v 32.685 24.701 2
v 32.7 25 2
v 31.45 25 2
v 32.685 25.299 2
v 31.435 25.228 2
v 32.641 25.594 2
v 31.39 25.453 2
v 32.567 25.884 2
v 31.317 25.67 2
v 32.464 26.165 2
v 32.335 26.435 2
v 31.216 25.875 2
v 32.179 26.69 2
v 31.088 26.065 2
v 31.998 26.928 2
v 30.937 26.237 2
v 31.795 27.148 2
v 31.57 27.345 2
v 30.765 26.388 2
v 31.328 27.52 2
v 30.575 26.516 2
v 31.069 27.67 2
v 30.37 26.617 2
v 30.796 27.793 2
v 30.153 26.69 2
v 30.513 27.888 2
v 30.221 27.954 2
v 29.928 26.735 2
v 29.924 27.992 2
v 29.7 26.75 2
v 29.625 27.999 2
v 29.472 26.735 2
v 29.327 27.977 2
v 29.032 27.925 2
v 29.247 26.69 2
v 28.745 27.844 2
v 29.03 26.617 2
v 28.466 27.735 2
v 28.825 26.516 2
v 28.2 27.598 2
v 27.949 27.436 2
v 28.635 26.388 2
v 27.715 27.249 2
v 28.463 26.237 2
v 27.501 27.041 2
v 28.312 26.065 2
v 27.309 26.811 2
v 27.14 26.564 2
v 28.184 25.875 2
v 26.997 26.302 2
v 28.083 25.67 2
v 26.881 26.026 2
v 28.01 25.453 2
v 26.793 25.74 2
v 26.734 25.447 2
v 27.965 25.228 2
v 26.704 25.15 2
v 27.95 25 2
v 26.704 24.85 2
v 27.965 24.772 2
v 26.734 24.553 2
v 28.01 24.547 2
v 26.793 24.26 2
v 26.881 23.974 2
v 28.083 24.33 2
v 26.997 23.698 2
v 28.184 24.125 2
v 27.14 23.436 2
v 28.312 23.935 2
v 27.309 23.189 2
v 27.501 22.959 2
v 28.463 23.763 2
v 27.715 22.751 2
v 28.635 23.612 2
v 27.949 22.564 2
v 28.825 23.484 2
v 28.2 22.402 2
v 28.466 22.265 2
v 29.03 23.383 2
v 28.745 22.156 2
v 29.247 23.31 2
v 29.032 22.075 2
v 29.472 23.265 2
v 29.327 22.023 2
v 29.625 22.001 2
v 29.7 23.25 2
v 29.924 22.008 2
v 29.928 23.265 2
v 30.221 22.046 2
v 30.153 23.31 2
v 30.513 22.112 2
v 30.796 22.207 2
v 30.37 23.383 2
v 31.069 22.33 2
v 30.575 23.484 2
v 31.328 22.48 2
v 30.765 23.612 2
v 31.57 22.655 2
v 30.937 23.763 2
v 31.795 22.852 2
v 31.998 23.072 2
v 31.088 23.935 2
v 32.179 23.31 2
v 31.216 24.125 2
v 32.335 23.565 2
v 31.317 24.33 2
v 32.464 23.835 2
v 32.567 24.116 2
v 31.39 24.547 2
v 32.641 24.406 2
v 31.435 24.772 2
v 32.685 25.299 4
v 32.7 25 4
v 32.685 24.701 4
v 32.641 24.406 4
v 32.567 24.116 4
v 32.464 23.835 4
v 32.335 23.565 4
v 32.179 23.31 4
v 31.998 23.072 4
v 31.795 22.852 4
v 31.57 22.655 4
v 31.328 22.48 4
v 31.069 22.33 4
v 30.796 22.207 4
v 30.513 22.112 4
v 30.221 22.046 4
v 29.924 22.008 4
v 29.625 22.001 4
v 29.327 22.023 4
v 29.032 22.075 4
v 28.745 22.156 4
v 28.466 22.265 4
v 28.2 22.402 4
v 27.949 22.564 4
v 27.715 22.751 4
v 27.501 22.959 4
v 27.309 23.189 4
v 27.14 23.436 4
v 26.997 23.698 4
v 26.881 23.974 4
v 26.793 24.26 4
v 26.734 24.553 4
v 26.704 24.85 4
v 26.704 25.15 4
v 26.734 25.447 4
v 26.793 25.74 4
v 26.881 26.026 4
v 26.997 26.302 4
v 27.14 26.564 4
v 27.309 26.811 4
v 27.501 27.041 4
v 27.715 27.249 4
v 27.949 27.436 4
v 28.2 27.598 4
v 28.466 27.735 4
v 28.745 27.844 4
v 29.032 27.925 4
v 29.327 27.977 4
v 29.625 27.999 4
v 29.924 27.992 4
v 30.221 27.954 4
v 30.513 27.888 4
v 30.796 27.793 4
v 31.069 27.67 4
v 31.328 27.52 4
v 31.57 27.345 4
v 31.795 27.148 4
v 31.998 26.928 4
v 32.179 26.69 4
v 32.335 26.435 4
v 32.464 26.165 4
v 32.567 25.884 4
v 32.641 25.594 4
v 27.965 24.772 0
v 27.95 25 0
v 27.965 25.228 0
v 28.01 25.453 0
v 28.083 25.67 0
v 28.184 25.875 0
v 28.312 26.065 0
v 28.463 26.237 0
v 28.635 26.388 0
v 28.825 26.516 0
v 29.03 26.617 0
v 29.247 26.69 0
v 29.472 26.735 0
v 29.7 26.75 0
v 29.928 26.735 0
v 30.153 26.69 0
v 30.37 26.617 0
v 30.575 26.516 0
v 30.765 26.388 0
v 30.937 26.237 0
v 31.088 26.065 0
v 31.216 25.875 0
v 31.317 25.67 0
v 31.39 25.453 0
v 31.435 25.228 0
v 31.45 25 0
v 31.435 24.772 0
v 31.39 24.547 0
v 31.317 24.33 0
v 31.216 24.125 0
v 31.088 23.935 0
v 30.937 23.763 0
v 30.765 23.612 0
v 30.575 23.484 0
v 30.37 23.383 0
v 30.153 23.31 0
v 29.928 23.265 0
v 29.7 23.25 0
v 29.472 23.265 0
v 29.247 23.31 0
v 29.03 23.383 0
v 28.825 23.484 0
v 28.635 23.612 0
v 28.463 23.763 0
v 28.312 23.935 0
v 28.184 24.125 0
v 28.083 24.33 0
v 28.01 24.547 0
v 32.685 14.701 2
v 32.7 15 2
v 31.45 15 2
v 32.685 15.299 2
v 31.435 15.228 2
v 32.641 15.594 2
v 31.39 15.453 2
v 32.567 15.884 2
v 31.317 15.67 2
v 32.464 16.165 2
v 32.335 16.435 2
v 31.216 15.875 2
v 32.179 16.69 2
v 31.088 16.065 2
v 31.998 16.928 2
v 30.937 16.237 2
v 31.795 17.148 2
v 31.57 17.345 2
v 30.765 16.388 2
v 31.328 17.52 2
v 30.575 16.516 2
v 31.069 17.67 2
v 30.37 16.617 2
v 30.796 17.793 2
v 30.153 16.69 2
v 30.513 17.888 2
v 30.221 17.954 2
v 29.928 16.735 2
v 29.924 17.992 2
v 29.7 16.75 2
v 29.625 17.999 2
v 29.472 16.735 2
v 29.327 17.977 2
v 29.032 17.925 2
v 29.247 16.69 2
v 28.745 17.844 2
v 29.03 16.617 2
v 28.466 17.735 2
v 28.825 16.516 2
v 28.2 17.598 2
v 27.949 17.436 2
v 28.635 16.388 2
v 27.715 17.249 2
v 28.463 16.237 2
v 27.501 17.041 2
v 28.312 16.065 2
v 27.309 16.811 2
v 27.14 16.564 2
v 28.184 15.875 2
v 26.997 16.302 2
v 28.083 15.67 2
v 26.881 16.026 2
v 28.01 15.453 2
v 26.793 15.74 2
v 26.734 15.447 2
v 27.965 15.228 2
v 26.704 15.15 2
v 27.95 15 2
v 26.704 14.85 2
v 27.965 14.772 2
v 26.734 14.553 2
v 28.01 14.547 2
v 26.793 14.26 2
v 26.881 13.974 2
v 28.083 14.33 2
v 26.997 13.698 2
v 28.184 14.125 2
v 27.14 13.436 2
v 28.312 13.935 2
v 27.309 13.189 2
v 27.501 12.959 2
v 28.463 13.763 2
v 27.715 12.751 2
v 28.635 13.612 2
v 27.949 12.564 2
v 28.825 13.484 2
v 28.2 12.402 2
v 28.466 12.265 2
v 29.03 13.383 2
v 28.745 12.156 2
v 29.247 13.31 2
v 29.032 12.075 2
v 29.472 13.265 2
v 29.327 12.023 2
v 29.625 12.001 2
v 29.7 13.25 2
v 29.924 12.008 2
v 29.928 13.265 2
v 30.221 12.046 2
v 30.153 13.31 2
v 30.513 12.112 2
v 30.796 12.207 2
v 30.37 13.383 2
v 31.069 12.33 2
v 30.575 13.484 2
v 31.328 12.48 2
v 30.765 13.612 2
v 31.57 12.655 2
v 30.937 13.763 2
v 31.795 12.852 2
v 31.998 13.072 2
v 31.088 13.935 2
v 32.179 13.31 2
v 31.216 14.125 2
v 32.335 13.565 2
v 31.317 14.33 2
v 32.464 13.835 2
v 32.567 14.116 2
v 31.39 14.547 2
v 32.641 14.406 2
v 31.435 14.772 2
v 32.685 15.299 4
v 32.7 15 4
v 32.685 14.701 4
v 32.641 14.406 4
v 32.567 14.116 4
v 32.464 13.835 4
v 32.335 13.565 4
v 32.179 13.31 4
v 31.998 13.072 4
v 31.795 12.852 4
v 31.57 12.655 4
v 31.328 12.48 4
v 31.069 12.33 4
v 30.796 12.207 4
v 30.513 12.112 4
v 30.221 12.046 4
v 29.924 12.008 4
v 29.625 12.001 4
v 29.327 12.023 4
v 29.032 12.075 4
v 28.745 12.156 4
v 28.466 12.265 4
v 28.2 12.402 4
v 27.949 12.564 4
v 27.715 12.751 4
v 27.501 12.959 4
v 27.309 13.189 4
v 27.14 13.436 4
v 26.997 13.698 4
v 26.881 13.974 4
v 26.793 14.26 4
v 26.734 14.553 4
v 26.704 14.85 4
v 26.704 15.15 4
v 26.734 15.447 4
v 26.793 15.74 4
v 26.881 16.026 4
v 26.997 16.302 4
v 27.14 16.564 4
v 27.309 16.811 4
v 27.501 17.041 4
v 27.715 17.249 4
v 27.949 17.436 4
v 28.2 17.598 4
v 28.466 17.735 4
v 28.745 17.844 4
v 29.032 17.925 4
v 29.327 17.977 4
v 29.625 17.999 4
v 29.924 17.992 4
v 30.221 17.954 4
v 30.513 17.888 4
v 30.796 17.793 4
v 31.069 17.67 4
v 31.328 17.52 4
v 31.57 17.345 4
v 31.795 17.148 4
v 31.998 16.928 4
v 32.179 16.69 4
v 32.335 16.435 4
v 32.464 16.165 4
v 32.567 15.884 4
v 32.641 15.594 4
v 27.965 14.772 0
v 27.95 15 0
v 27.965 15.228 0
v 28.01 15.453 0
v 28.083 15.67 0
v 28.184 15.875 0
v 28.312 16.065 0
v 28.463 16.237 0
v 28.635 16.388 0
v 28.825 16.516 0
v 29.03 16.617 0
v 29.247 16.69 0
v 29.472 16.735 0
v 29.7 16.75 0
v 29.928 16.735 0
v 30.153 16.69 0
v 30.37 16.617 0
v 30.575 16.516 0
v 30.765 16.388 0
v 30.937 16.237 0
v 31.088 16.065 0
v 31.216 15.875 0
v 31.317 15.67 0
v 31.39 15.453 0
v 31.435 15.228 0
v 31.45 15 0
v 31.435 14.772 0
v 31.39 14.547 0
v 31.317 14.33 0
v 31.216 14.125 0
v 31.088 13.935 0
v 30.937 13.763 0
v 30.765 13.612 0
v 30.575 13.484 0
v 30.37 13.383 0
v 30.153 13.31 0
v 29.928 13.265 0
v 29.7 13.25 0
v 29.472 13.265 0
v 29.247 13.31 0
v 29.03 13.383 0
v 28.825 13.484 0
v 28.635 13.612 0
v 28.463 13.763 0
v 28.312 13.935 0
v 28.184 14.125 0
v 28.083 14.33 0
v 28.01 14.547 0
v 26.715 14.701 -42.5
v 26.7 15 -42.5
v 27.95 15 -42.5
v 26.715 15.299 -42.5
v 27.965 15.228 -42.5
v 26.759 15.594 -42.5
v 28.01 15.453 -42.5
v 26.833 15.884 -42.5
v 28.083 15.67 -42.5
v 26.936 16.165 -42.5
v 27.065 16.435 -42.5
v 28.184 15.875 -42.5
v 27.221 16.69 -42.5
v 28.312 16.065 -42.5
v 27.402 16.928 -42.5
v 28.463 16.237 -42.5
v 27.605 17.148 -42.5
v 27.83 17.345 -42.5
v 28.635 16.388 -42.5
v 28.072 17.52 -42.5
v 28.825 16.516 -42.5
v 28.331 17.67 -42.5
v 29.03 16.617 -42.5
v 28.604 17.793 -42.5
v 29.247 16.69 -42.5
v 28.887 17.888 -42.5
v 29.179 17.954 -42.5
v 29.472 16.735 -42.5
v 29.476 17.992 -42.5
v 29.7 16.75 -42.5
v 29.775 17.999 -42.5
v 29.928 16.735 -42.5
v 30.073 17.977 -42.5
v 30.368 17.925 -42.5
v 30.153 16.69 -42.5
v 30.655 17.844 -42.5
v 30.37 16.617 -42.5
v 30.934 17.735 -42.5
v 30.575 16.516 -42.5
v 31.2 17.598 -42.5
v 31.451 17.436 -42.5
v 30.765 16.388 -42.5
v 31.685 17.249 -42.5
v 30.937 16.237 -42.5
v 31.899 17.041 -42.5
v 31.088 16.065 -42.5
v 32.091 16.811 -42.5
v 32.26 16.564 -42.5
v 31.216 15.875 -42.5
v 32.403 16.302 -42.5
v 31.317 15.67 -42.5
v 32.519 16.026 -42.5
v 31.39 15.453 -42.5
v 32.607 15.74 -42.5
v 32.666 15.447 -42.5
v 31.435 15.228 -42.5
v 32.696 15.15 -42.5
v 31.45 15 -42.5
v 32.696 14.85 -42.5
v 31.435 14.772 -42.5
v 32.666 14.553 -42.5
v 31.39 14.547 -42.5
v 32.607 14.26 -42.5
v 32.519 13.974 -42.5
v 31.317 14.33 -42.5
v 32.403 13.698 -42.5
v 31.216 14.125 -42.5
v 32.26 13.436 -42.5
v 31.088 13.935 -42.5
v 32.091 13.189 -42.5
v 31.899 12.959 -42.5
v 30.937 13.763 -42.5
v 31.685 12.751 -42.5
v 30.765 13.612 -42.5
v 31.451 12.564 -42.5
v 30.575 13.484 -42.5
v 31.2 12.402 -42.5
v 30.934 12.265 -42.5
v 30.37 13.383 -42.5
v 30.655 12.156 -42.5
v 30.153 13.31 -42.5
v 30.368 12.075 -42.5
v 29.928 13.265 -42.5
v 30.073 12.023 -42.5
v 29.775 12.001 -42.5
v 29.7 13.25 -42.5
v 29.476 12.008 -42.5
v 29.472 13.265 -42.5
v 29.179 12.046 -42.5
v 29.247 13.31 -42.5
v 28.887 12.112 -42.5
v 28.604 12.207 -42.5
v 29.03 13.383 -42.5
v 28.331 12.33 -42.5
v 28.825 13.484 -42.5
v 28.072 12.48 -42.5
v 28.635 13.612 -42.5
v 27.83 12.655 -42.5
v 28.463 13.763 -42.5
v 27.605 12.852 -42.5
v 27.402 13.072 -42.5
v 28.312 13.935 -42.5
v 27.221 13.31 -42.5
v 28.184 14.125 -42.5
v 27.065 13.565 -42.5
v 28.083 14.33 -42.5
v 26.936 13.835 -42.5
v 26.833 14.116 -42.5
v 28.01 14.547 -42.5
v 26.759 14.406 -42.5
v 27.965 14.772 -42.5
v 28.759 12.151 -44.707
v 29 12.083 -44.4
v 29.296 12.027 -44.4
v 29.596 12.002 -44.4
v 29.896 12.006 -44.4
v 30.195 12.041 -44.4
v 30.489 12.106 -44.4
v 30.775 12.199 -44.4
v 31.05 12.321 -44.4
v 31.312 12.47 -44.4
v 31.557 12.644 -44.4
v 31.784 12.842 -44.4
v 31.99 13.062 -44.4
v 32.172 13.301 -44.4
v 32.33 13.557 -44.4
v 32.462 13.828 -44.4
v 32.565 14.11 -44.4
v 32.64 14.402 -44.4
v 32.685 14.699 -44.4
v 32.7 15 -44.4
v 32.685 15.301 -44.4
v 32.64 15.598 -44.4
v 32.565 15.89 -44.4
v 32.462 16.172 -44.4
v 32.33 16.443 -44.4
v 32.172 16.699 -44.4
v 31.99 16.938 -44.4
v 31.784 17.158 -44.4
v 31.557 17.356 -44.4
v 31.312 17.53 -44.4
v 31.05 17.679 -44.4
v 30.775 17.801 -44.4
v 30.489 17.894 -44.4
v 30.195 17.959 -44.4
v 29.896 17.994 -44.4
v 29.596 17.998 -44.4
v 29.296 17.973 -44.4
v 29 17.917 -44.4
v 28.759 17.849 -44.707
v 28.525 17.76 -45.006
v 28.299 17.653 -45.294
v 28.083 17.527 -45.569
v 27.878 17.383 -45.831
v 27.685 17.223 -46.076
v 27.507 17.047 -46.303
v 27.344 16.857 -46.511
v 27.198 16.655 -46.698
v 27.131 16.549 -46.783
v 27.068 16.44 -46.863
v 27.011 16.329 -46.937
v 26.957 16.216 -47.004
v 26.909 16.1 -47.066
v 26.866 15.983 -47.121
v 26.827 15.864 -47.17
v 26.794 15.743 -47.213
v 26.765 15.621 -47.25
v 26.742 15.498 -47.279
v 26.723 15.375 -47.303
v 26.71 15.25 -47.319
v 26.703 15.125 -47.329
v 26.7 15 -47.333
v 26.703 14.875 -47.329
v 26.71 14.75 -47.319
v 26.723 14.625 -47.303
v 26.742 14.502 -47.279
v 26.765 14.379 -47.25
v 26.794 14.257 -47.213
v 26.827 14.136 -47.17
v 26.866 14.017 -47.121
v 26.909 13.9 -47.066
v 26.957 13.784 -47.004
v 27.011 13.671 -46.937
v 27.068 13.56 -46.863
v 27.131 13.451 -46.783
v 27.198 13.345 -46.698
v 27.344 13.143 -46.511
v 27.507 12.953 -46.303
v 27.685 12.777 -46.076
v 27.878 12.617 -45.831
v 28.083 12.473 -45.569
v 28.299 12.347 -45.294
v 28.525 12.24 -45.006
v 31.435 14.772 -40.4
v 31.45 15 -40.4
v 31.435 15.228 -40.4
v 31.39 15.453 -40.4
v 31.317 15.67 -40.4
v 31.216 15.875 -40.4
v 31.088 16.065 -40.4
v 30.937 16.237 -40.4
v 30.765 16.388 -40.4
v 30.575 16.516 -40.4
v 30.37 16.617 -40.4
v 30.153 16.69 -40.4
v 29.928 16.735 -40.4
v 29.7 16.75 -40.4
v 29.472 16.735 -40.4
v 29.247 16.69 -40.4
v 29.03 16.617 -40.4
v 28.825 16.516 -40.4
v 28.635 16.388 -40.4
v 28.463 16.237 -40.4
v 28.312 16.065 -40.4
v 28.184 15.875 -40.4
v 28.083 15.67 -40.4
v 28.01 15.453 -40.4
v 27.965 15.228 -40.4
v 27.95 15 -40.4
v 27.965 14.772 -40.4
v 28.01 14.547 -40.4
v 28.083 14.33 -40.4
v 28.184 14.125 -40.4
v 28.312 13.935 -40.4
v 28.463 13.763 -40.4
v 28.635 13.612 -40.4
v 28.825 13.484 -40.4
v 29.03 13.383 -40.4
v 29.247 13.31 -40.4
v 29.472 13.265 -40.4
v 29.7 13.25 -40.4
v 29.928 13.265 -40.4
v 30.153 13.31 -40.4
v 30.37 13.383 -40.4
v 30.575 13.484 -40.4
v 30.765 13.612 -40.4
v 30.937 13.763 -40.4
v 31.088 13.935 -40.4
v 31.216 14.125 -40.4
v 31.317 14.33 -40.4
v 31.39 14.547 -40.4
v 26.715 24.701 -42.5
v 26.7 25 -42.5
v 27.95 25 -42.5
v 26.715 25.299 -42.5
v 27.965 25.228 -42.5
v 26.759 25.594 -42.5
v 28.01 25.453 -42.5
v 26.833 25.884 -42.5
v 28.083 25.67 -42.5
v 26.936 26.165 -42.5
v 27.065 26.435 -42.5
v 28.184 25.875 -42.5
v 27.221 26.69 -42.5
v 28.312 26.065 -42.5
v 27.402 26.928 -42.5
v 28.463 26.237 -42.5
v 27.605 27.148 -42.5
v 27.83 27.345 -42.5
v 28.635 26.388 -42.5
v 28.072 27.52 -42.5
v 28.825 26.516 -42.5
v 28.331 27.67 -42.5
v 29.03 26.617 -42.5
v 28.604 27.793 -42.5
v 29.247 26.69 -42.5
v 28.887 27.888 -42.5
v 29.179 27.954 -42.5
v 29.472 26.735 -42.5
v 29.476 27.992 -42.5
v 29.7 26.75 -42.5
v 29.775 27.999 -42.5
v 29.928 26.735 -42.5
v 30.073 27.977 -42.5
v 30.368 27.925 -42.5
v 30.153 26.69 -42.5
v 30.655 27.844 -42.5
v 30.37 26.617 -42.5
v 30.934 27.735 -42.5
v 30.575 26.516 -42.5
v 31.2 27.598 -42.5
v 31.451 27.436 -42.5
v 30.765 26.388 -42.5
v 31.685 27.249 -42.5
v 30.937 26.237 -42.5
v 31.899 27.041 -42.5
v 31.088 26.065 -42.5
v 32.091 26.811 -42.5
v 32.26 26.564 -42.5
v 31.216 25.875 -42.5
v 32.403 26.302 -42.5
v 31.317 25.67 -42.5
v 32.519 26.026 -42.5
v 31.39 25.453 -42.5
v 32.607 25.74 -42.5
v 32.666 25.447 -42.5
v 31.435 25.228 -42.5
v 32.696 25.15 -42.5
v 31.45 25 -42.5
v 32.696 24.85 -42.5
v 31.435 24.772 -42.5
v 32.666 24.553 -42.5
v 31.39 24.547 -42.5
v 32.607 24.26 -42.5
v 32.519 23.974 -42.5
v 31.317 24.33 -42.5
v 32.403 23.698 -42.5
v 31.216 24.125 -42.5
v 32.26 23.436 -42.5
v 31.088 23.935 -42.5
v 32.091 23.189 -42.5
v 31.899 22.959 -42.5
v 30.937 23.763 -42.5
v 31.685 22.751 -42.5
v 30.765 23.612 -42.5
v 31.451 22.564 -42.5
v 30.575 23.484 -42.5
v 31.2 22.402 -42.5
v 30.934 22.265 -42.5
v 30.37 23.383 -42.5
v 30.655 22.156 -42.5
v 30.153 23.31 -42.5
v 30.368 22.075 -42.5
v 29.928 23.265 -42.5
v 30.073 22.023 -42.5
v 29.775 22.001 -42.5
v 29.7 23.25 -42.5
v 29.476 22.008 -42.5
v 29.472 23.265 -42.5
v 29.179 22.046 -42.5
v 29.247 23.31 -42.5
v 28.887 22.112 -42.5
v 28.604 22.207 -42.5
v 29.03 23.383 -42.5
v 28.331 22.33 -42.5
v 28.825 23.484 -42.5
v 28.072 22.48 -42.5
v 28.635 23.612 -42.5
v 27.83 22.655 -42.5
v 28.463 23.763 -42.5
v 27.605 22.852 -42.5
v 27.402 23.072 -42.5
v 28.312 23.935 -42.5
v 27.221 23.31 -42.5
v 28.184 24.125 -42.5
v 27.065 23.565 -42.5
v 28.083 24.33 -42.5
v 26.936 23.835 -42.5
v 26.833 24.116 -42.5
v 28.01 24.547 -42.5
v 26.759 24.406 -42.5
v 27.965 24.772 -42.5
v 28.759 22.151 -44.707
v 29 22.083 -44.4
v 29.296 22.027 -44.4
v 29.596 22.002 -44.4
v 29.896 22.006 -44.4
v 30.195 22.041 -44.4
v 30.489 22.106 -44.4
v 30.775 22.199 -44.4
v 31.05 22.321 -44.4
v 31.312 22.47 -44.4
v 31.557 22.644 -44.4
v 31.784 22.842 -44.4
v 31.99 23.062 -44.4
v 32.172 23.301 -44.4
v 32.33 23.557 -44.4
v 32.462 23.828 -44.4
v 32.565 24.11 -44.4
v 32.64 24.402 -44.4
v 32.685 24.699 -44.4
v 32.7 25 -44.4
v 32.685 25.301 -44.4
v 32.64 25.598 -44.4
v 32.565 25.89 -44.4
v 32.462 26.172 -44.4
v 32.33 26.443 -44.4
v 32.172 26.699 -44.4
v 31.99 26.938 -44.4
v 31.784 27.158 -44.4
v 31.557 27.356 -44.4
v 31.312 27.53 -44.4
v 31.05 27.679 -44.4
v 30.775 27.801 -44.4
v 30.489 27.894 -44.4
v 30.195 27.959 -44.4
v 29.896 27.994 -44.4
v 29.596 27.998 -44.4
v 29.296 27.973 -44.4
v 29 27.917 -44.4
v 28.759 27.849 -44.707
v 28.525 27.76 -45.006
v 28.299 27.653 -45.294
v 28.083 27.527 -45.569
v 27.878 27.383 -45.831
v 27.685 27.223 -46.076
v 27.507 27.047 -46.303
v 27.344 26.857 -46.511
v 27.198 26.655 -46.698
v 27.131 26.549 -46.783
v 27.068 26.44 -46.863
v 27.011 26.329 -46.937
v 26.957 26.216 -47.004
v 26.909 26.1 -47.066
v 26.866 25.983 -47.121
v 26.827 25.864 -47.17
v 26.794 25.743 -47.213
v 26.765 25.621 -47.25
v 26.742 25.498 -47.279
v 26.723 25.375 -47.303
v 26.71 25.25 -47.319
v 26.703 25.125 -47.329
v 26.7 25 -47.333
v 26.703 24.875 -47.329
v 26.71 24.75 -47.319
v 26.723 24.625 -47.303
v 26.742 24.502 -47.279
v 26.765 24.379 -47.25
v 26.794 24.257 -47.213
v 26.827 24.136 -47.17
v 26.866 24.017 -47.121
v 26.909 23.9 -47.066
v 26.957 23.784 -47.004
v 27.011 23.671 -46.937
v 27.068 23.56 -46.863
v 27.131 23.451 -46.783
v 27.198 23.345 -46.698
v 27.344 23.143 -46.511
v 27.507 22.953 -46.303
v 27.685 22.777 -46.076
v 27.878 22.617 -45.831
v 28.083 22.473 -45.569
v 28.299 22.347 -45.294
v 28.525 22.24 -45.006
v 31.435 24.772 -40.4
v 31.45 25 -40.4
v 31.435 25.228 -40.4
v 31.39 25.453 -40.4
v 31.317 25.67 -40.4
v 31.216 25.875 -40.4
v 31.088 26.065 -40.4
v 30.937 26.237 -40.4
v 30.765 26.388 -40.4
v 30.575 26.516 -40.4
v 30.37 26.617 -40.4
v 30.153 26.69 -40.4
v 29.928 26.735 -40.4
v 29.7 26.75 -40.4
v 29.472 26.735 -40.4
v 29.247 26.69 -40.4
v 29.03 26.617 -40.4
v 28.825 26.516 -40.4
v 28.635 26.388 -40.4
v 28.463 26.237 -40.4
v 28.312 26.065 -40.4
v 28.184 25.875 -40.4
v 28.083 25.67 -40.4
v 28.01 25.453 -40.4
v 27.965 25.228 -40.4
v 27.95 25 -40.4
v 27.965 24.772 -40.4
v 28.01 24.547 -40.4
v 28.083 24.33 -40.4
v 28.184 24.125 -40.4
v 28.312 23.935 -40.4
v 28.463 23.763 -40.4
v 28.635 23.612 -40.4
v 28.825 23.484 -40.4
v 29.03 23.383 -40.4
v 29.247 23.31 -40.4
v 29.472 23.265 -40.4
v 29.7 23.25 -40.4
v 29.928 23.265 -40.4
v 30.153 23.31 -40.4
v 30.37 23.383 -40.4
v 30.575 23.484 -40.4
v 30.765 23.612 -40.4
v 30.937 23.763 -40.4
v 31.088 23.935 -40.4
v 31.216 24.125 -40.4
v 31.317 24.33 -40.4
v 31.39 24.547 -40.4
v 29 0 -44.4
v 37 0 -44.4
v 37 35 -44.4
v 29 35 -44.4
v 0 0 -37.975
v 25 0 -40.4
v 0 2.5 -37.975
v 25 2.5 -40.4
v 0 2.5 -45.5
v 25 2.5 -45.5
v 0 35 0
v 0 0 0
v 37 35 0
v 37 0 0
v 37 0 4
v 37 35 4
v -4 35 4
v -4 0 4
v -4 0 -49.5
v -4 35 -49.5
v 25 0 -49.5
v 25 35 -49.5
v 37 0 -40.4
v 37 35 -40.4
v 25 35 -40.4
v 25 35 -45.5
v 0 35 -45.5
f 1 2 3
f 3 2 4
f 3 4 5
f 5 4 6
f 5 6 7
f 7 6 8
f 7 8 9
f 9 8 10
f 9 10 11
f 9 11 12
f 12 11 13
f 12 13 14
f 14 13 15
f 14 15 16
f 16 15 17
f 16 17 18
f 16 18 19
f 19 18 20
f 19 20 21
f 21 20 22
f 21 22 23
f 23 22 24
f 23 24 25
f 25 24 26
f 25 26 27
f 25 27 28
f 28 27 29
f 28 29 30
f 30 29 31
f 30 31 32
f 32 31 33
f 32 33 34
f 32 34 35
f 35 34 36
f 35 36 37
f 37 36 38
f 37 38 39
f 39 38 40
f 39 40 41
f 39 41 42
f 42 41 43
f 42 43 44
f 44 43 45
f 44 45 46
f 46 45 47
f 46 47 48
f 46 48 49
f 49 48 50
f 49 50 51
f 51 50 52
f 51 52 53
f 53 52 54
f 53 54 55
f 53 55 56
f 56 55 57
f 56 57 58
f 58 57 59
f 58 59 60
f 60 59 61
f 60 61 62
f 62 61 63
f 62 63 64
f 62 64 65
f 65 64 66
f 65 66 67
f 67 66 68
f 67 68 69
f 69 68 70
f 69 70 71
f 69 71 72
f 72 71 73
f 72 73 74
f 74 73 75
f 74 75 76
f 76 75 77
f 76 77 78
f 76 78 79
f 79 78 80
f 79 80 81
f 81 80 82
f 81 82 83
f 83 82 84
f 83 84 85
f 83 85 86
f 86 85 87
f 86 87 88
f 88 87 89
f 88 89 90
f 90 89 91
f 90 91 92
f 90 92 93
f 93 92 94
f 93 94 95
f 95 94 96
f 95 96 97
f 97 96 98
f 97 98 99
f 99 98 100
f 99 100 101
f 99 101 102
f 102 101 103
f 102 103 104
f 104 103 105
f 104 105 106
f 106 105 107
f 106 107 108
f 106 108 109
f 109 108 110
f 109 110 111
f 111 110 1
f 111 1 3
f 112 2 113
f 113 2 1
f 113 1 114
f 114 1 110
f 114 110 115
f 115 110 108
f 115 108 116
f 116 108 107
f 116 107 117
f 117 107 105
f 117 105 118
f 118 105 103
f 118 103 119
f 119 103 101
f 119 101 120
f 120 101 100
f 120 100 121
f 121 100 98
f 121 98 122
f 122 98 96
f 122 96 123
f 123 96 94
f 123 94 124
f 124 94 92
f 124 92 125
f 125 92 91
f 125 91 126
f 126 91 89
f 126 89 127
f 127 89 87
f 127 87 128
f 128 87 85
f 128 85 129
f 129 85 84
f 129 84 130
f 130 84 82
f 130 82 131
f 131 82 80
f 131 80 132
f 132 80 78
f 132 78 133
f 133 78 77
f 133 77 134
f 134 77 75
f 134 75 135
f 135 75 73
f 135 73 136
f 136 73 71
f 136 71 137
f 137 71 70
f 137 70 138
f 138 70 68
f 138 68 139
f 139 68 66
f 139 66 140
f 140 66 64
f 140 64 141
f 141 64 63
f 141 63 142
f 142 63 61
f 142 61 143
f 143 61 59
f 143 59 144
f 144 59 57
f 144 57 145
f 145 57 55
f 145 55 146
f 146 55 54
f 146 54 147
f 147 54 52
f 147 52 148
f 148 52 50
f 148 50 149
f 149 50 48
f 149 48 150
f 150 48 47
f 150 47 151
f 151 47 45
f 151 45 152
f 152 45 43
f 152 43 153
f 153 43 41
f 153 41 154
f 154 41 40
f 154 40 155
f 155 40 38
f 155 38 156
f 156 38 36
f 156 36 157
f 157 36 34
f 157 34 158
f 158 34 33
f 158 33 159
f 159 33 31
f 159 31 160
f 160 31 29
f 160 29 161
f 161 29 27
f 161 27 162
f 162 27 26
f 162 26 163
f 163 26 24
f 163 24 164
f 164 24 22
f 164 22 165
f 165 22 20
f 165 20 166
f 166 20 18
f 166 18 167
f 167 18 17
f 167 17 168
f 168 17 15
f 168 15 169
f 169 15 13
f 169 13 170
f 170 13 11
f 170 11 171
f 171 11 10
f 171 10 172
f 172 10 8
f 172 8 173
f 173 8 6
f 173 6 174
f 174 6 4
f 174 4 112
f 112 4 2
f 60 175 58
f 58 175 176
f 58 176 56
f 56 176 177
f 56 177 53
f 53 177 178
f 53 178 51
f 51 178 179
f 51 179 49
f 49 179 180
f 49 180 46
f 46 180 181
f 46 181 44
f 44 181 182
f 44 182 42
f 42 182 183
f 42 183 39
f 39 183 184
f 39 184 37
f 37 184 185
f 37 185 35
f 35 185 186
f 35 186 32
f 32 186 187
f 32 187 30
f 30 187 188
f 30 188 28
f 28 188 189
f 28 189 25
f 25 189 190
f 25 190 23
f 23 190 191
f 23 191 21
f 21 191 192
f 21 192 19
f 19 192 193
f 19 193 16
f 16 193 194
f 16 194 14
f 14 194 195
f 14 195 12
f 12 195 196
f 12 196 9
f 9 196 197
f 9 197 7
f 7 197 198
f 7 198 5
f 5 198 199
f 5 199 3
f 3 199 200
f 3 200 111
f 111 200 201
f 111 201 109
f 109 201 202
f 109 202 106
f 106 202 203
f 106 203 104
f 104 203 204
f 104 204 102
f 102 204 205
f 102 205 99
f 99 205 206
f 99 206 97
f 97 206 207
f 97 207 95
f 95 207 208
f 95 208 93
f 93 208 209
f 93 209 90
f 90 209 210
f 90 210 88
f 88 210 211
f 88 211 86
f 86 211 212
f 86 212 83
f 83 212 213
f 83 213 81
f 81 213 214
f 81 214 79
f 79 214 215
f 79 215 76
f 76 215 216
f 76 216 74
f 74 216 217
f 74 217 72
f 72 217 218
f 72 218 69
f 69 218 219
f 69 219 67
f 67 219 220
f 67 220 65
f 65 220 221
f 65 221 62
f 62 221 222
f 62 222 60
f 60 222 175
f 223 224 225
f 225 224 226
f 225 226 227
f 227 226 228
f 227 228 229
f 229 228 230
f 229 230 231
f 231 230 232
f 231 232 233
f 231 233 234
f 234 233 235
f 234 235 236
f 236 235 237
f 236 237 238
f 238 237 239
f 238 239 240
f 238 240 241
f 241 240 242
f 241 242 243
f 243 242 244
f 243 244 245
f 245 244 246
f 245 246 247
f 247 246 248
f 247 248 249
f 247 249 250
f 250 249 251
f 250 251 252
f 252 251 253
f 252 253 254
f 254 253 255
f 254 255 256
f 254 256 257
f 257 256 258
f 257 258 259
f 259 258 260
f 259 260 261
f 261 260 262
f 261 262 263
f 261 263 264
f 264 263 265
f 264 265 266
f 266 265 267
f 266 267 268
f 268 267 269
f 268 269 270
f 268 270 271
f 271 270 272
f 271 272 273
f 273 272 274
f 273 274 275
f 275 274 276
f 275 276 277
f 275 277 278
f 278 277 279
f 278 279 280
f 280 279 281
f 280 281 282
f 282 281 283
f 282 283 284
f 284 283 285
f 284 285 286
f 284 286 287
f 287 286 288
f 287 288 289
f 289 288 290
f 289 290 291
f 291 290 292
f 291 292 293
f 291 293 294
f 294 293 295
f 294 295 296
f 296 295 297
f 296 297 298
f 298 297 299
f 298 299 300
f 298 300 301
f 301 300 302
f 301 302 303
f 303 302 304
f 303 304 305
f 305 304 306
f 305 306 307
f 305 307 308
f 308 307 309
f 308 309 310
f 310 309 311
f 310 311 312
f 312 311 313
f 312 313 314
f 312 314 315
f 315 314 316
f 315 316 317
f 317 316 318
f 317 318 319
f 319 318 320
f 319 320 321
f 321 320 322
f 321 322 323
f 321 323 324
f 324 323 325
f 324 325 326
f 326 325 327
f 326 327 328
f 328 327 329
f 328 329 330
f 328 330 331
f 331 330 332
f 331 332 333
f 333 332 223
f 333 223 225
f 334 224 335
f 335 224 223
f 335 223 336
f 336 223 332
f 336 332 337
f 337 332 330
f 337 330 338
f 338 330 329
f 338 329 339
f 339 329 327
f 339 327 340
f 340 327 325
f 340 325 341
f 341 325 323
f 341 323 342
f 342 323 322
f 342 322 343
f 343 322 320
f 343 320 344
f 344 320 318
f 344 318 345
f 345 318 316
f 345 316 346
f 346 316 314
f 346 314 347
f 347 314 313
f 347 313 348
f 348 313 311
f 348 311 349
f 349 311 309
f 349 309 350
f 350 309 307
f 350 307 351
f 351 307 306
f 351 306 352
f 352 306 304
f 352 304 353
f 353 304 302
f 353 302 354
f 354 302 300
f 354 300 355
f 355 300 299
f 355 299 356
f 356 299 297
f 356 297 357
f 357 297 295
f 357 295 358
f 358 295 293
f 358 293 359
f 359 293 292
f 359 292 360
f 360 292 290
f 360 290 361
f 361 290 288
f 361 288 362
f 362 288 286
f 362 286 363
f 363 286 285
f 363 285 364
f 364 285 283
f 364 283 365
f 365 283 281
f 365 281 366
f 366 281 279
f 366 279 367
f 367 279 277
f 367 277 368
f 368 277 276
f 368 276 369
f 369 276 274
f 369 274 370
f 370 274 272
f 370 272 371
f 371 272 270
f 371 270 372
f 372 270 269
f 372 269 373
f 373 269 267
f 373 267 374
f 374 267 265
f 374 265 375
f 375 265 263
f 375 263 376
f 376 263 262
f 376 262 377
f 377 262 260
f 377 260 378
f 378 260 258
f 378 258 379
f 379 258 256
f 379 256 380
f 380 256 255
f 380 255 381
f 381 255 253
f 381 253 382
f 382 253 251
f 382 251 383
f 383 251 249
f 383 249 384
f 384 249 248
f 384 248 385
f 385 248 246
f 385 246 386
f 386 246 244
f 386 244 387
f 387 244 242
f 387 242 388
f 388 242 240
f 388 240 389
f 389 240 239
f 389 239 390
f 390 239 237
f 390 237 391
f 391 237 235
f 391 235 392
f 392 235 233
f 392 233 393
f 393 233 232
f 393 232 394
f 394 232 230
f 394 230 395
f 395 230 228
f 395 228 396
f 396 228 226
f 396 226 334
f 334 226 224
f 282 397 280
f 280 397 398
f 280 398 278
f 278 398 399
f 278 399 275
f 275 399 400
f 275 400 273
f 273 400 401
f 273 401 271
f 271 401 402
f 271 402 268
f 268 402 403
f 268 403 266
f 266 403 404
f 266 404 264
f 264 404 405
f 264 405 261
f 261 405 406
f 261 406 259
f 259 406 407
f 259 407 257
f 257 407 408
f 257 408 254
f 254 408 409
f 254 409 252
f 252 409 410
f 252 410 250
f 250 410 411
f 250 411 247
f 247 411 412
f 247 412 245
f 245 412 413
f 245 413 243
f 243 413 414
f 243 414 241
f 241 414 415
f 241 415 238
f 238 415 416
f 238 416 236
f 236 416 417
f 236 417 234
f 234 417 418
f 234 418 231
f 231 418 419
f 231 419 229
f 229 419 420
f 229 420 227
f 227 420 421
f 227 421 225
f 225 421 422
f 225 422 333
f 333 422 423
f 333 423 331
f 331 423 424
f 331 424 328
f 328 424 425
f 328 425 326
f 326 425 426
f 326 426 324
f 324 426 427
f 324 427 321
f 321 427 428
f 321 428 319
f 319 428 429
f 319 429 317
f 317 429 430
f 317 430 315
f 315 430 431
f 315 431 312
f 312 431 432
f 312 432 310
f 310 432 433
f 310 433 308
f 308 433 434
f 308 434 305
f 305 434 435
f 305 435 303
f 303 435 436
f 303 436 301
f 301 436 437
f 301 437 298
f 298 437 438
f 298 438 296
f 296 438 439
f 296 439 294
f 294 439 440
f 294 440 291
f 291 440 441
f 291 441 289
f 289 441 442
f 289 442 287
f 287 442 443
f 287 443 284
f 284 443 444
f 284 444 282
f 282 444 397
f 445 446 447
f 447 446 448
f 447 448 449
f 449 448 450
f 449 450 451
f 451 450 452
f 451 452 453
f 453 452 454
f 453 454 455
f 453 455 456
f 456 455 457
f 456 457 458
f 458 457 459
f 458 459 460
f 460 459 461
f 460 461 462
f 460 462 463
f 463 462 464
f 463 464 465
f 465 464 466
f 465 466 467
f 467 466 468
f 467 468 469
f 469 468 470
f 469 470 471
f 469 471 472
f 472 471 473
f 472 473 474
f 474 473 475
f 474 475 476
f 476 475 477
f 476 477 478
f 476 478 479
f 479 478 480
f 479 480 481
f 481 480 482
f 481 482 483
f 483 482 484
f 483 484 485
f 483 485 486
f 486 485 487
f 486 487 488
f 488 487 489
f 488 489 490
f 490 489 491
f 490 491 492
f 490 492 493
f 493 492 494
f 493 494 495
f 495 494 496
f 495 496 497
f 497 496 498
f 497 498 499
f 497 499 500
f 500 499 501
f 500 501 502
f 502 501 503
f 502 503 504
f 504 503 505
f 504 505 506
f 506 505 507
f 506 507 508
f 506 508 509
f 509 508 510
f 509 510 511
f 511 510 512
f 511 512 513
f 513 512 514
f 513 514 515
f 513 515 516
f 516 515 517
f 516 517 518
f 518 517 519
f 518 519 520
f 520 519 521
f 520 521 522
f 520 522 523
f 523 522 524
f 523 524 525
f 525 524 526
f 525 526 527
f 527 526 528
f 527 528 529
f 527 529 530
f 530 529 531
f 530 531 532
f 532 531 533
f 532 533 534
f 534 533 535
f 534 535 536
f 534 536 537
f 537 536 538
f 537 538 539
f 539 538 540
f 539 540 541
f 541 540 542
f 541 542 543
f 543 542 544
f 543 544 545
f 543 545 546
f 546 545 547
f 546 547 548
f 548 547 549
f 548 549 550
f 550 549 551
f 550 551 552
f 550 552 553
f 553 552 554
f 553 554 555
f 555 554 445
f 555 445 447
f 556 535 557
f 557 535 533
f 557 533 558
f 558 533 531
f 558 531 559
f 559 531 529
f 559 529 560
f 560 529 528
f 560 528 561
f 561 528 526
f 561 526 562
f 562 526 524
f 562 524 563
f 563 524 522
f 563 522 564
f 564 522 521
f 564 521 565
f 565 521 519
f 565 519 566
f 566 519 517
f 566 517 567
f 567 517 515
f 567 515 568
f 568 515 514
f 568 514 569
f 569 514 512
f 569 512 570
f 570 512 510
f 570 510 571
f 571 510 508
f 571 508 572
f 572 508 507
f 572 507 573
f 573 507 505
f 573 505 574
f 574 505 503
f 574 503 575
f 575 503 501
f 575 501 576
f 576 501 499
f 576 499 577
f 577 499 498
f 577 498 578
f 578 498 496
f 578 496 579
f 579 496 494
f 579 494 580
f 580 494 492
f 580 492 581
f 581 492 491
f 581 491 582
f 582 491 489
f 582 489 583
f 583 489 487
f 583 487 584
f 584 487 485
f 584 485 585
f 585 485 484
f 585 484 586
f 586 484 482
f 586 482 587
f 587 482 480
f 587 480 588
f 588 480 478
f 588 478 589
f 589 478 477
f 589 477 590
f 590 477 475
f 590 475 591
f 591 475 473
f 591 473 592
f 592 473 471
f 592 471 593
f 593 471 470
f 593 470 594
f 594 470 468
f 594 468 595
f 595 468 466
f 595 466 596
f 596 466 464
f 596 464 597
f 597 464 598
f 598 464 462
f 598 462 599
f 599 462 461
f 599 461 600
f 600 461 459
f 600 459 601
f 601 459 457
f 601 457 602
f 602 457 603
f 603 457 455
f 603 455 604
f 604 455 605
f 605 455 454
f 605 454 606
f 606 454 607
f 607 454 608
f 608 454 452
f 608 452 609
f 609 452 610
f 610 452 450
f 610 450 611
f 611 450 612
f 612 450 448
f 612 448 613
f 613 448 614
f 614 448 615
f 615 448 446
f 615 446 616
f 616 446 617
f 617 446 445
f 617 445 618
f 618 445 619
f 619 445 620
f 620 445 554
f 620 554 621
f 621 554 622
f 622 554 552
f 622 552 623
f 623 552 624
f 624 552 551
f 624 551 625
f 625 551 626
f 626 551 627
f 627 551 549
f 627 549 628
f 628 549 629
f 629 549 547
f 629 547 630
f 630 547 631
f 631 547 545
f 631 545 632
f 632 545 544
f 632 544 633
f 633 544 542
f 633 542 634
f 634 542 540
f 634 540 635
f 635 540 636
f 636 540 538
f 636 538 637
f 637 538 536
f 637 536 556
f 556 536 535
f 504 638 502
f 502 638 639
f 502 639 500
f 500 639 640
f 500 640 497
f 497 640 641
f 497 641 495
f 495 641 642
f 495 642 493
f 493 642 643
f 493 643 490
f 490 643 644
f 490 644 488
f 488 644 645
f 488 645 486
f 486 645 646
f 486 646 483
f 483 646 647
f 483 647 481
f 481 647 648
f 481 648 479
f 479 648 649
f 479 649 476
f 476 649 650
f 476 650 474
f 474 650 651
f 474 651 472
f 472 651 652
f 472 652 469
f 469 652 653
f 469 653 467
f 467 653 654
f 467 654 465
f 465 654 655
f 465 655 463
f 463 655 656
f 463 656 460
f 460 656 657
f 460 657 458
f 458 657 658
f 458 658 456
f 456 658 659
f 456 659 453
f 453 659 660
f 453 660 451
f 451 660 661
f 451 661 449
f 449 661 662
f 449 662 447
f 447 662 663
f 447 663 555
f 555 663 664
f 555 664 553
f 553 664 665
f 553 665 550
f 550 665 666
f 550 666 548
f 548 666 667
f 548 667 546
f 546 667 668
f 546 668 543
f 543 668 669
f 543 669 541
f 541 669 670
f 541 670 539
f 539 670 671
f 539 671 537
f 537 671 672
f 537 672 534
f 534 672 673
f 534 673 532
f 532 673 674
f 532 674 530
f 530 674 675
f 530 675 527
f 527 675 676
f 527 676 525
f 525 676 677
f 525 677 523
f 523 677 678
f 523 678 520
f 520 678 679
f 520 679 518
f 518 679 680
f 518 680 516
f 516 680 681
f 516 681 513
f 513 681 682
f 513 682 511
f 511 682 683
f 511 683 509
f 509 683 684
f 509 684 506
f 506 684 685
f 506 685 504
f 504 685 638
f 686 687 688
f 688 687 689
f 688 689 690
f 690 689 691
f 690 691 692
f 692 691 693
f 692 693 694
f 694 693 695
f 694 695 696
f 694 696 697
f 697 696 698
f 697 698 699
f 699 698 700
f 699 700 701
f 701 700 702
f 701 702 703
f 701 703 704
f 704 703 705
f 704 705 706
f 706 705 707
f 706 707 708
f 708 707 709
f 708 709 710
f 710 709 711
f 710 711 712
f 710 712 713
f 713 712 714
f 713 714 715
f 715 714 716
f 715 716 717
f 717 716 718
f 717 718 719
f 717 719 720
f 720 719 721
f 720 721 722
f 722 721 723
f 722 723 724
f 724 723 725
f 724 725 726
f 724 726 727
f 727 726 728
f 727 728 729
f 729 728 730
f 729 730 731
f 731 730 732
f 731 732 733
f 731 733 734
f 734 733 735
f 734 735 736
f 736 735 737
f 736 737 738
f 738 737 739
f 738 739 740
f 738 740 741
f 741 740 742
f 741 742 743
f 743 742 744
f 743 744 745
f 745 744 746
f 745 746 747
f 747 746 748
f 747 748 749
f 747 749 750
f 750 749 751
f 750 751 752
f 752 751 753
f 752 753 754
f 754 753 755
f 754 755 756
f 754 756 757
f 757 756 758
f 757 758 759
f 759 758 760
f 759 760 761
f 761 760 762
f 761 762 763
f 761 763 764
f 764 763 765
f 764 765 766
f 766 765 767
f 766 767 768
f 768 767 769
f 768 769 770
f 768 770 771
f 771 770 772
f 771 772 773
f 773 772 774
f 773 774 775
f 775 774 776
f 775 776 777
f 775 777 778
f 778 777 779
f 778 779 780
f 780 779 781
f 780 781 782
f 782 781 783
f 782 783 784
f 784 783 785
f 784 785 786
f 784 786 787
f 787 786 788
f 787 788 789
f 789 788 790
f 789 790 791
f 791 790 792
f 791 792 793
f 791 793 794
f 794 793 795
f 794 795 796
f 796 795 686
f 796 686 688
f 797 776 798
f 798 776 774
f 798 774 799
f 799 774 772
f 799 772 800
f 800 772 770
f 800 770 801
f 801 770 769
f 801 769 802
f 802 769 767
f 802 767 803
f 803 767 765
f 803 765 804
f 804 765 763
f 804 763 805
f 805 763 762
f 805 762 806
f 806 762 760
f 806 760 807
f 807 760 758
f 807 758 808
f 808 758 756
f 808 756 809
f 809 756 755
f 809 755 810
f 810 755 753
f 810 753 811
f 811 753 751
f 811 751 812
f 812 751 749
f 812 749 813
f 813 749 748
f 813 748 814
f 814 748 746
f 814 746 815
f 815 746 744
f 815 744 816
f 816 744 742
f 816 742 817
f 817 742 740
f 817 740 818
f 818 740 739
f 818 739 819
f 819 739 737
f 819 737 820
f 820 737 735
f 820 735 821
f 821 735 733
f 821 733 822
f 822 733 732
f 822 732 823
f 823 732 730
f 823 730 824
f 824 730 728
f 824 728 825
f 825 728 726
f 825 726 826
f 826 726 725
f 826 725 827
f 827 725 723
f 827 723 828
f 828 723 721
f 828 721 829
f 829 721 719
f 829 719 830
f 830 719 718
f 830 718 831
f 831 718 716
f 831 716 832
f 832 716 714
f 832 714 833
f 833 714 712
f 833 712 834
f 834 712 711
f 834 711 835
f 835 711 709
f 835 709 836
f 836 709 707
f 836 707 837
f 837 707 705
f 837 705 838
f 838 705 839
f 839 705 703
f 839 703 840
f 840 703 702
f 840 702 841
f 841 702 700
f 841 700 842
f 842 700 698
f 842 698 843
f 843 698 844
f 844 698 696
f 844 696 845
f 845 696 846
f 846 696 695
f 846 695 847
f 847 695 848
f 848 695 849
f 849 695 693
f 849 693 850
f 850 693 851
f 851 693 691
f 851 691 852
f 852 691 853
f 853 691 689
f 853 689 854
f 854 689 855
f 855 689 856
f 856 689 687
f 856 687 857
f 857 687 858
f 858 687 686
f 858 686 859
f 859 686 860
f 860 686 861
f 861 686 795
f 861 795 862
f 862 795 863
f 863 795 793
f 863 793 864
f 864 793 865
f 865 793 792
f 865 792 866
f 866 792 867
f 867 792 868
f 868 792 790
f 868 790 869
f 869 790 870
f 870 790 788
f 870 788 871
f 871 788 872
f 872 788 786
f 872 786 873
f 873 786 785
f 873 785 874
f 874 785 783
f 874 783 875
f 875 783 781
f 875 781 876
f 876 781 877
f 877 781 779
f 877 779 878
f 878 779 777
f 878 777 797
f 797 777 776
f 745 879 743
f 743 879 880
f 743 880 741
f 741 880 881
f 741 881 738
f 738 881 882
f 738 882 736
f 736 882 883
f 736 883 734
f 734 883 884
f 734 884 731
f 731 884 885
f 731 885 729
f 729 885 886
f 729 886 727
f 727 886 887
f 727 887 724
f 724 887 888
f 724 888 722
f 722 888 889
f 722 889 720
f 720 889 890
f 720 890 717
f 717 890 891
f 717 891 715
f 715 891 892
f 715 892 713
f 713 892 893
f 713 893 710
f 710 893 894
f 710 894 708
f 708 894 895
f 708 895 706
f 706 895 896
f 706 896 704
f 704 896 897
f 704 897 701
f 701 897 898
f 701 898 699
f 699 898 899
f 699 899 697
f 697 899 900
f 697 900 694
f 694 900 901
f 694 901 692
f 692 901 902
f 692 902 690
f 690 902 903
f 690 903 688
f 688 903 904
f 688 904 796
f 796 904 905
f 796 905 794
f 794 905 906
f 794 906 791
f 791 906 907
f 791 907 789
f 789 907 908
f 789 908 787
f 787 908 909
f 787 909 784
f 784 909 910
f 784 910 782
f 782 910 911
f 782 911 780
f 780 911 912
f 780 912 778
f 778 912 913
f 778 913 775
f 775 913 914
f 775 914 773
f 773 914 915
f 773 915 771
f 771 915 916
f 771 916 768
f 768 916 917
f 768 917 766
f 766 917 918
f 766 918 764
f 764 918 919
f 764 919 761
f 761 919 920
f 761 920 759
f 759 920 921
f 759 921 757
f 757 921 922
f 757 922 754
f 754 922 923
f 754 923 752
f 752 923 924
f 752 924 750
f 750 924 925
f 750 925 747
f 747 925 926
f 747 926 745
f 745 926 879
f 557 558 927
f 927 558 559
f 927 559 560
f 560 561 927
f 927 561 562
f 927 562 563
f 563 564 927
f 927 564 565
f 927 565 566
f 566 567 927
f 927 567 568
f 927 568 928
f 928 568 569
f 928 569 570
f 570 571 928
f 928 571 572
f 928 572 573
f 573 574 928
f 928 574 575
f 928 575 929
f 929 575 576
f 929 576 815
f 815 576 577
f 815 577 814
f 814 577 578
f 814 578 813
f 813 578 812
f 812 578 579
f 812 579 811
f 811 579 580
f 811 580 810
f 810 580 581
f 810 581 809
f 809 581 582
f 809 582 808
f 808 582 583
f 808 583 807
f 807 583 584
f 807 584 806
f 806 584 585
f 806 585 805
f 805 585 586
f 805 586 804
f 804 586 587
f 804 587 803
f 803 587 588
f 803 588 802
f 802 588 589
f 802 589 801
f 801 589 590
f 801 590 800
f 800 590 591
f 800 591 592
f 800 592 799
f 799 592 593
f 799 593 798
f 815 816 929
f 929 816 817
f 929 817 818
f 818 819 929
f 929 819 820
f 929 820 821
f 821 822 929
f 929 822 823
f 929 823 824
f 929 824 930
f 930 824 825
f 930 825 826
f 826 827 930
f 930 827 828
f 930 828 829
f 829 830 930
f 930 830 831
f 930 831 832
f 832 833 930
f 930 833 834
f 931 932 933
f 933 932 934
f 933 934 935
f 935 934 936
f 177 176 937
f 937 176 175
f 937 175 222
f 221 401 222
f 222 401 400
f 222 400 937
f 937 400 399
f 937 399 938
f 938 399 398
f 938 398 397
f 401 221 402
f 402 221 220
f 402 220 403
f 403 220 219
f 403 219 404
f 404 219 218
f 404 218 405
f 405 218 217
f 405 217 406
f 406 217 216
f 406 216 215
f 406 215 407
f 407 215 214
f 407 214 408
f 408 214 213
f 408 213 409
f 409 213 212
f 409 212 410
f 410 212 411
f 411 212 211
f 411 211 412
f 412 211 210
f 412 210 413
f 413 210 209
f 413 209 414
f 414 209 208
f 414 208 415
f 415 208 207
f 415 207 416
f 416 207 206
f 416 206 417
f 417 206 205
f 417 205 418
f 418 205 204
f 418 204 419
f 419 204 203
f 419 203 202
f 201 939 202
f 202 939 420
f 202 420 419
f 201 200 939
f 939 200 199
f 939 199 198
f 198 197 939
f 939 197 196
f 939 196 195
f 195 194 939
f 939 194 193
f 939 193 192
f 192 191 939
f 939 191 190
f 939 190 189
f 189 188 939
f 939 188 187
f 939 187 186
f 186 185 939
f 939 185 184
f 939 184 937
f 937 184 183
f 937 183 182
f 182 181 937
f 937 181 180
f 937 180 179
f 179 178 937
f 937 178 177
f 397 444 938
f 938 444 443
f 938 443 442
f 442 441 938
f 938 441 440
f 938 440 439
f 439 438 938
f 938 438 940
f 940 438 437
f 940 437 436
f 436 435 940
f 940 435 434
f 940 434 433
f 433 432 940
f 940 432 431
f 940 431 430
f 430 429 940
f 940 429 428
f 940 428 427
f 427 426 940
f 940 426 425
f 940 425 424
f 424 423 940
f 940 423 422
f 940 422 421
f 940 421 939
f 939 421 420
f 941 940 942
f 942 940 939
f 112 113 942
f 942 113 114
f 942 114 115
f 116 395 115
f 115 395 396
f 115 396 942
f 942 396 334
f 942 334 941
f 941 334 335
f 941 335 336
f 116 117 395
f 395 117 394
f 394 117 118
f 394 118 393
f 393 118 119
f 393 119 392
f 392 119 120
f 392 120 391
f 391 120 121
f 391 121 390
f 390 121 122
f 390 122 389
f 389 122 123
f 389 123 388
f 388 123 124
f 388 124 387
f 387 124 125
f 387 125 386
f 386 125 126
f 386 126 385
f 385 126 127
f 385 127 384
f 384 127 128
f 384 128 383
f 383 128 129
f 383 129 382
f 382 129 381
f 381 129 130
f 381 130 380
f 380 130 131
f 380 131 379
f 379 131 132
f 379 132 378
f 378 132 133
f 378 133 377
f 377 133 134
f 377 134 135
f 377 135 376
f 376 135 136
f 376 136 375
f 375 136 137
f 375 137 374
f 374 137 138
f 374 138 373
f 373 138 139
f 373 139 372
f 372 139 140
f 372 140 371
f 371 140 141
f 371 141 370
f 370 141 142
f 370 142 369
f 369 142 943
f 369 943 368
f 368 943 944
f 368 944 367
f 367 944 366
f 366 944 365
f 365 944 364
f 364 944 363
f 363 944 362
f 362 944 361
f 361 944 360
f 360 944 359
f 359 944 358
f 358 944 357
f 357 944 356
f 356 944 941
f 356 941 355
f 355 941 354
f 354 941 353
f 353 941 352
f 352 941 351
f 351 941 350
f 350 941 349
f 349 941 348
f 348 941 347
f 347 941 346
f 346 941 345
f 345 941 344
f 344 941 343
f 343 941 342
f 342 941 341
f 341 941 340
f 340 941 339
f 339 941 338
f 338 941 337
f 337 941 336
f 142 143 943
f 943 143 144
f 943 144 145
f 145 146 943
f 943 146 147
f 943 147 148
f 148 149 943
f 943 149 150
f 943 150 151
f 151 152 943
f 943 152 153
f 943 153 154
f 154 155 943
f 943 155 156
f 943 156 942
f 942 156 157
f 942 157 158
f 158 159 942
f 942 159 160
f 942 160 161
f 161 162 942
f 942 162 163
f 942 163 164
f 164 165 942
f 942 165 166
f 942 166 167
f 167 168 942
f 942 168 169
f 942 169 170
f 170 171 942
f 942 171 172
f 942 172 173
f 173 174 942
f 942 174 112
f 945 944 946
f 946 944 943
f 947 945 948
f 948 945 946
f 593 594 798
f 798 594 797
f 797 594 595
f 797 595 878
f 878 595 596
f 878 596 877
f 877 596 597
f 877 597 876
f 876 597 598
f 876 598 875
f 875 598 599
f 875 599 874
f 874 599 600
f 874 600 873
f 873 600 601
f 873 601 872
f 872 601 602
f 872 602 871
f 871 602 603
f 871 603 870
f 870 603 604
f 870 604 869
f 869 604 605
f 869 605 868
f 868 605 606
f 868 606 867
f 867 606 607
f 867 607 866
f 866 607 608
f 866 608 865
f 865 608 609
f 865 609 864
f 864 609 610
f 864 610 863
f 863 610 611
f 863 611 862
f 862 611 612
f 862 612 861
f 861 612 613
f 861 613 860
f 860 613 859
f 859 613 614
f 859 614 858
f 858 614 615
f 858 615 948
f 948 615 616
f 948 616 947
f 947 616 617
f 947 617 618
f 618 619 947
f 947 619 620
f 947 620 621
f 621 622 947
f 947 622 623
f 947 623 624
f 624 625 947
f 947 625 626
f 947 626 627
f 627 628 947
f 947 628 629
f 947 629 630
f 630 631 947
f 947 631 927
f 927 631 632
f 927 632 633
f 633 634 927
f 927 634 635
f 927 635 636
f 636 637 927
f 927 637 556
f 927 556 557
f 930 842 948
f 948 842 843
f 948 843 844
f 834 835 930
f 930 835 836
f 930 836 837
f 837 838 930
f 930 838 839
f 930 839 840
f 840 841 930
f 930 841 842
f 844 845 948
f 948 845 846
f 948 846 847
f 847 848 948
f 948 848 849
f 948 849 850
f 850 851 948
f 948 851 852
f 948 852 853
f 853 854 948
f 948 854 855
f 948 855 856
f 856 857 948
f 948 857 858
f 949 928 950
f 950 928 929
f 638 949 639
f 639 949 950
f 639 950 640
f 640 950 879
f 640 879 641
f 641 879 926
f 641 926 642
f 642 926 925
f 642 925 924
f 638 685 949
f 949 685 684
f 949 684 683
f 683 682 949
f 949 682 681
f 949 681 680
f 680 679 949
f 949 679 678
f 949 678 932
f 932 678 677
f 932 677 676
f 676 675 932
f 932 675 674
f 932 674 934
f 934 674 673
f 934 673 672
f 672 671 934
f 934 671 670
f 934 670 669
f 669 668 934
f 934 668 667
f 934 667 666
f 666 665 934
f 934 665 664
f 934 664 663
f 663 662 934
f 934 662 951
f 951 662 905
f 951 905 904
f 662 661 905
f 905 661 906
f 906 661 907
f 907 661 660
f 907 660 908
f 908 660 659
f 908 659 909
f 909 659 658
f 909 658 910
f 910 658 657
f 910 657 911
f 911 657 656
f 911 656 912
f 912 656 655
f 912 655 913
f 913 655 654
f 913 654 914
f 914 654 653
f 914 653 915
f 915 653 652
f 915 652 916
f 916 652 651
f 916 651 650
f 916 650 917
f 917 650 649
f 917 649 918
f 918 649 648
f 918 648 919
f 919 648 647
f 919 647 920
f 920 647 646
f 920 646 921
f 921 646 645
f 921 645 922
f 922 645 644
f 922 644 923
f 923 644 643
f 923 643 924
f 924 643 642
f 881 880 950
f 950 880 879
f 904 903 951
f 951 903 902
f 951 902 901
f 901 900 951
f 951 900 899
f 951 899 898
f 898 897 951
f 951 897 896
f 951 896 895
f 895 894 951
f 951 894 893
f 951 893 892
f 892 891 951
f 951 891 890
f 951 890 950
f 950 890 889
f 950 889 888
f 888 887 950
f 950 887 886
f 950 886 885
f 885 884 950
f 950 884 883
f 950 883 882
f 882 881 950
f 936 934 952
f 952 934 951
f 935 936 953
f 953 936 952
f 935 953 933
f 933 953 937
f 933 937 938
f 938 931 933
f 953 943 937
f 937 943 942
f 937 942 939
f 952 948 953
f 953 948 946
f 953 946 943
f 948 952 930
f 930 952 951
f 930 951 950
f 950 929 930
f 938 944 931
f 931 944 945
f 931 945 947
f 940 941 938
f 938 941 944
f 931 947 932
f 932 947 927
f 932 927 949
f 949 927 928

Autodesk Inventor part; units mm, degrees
ref_plane "YZ Plane" through (0, 0, 0) normal (1, 0, 0) x (0, 1, 0)
ref_plane "XZ Plane" through (0, 0, 0) normal (0, 1, 0) x (-1, 0, 0)
ref_plane "XY Plane" through (0, 0, 0) normal (0, 0, 1) x (1, 0, 0)
sketch "Sketch14" plane through (0, 0, 0) normal (0, 1, 0) x (-1, 0, 0)
  line L0 (0, 0) -> (0, -45.5)
  line L1 (0, -45.5) -> (-25, -45.5)
  line L2 (-25, -45.5) -> (-25, -40.4)
  line L3 (-25, -40.4) -> (-37, -40.4)
  line L4 (-33, 0) -> (0, 0)
  line L5 (0, 4) -> (4, 4)
  line L6 (4, 4) -> (4, -45.5)
  line L7 (4, -45.5) -> (4, -49.5)
  line L8 (4, -49.5) -> (-25, -49.5)
  line L9 (-37, -40.4) -> (-37, -44.4)
  line L10 (-33, 0) -> (-37, 0)
  line L11 (-37, 0) -> (-37, 4)
  line L12 (-37, 4) -> (0, 4)
  line L13 (-37, -44.4) -> (-29, -44.4)
  line L14 (-29, -44.4) -> (-25, -49.5)
  dimension "d59" = 45.5
  dimension "d60" = 25
  dimension "d61" = 5.1
  dimension "d62" = 12
  dimension "d64" = 4
  dimension "d65" = 4
  dimension "d66" = 4
  dimension "d67" = 4
  dimension "d68" = 8
extrude "Extrusion10" add sketch "Sketch14" along normal blind 35
sketch "Sketch17" plane through (0, 0, 0) normal (0, -1, 0) x (1, 0, 0)
  line L0 (0, -37.9754) -> (25, -40.4) projected
  line L1 (0, 0) -> (0, -45.5) projected
  line L2 (0, -37.9754) -> (0, -45.5)
  line L3 (25, -45.5) -> (0, -45.5) projected
  line L4 (0, -45.5) -> (25, -45.5)
  line L5 (25, -45.5) -> (25, -40.4) projected
  line L6 (25, -45.5) -> (25, -40.4)
  line L7 (25, -40.4) -> (0, -37.9754)
extrude "Extrusion12" add sketch "Sketch17" against normal blind 2.5
sketch "Sketch18" plane through (25, 0, -49.5) normal (0, 0, -1) x (-1, 0, 0)
  line L0 (25, 2.5) -> (25, 35) projected
  line L1 (25, 35) -> (-4.7, 35) construction
  line L2 (-4.7, 35) -> (-4.7, 15) construction
  line L3 (-4.7, 15) -> (25, 15) construction
  line L4 (25, 15) -> (25, 35) construction
  point P0 (25, 0)
  point P1 (-4.7, 25)
  dimension "d77" = 29.7
  dimension "d78" = 20
hole "Hole4" at (29.7, 15, -49.5) at (29.7, 25, -49.5) direction (0, 0, 1) diameter 3.5 depth 9.1 counterbore diameter 6 counterbore depth 7
sketch "Sketch19" plane through (-4, 0, 4) normal (0, 0, 1) x (1, 0, 0)
  circle A0 centre (33.7, 25) radius 1.75 projected
  circle A1 centre (33.7, 15) radius 1.75 projected
  point P0 (4, 0)
hole "Hole5" at (29.7, 25, 4) at (29.7, 15, 4) direction (0, 0, -1) diameter 3.5 depth 4 counterbore diameter 6 counterbore depth 2
properties part number "Swivel Arm Servo Holder"
